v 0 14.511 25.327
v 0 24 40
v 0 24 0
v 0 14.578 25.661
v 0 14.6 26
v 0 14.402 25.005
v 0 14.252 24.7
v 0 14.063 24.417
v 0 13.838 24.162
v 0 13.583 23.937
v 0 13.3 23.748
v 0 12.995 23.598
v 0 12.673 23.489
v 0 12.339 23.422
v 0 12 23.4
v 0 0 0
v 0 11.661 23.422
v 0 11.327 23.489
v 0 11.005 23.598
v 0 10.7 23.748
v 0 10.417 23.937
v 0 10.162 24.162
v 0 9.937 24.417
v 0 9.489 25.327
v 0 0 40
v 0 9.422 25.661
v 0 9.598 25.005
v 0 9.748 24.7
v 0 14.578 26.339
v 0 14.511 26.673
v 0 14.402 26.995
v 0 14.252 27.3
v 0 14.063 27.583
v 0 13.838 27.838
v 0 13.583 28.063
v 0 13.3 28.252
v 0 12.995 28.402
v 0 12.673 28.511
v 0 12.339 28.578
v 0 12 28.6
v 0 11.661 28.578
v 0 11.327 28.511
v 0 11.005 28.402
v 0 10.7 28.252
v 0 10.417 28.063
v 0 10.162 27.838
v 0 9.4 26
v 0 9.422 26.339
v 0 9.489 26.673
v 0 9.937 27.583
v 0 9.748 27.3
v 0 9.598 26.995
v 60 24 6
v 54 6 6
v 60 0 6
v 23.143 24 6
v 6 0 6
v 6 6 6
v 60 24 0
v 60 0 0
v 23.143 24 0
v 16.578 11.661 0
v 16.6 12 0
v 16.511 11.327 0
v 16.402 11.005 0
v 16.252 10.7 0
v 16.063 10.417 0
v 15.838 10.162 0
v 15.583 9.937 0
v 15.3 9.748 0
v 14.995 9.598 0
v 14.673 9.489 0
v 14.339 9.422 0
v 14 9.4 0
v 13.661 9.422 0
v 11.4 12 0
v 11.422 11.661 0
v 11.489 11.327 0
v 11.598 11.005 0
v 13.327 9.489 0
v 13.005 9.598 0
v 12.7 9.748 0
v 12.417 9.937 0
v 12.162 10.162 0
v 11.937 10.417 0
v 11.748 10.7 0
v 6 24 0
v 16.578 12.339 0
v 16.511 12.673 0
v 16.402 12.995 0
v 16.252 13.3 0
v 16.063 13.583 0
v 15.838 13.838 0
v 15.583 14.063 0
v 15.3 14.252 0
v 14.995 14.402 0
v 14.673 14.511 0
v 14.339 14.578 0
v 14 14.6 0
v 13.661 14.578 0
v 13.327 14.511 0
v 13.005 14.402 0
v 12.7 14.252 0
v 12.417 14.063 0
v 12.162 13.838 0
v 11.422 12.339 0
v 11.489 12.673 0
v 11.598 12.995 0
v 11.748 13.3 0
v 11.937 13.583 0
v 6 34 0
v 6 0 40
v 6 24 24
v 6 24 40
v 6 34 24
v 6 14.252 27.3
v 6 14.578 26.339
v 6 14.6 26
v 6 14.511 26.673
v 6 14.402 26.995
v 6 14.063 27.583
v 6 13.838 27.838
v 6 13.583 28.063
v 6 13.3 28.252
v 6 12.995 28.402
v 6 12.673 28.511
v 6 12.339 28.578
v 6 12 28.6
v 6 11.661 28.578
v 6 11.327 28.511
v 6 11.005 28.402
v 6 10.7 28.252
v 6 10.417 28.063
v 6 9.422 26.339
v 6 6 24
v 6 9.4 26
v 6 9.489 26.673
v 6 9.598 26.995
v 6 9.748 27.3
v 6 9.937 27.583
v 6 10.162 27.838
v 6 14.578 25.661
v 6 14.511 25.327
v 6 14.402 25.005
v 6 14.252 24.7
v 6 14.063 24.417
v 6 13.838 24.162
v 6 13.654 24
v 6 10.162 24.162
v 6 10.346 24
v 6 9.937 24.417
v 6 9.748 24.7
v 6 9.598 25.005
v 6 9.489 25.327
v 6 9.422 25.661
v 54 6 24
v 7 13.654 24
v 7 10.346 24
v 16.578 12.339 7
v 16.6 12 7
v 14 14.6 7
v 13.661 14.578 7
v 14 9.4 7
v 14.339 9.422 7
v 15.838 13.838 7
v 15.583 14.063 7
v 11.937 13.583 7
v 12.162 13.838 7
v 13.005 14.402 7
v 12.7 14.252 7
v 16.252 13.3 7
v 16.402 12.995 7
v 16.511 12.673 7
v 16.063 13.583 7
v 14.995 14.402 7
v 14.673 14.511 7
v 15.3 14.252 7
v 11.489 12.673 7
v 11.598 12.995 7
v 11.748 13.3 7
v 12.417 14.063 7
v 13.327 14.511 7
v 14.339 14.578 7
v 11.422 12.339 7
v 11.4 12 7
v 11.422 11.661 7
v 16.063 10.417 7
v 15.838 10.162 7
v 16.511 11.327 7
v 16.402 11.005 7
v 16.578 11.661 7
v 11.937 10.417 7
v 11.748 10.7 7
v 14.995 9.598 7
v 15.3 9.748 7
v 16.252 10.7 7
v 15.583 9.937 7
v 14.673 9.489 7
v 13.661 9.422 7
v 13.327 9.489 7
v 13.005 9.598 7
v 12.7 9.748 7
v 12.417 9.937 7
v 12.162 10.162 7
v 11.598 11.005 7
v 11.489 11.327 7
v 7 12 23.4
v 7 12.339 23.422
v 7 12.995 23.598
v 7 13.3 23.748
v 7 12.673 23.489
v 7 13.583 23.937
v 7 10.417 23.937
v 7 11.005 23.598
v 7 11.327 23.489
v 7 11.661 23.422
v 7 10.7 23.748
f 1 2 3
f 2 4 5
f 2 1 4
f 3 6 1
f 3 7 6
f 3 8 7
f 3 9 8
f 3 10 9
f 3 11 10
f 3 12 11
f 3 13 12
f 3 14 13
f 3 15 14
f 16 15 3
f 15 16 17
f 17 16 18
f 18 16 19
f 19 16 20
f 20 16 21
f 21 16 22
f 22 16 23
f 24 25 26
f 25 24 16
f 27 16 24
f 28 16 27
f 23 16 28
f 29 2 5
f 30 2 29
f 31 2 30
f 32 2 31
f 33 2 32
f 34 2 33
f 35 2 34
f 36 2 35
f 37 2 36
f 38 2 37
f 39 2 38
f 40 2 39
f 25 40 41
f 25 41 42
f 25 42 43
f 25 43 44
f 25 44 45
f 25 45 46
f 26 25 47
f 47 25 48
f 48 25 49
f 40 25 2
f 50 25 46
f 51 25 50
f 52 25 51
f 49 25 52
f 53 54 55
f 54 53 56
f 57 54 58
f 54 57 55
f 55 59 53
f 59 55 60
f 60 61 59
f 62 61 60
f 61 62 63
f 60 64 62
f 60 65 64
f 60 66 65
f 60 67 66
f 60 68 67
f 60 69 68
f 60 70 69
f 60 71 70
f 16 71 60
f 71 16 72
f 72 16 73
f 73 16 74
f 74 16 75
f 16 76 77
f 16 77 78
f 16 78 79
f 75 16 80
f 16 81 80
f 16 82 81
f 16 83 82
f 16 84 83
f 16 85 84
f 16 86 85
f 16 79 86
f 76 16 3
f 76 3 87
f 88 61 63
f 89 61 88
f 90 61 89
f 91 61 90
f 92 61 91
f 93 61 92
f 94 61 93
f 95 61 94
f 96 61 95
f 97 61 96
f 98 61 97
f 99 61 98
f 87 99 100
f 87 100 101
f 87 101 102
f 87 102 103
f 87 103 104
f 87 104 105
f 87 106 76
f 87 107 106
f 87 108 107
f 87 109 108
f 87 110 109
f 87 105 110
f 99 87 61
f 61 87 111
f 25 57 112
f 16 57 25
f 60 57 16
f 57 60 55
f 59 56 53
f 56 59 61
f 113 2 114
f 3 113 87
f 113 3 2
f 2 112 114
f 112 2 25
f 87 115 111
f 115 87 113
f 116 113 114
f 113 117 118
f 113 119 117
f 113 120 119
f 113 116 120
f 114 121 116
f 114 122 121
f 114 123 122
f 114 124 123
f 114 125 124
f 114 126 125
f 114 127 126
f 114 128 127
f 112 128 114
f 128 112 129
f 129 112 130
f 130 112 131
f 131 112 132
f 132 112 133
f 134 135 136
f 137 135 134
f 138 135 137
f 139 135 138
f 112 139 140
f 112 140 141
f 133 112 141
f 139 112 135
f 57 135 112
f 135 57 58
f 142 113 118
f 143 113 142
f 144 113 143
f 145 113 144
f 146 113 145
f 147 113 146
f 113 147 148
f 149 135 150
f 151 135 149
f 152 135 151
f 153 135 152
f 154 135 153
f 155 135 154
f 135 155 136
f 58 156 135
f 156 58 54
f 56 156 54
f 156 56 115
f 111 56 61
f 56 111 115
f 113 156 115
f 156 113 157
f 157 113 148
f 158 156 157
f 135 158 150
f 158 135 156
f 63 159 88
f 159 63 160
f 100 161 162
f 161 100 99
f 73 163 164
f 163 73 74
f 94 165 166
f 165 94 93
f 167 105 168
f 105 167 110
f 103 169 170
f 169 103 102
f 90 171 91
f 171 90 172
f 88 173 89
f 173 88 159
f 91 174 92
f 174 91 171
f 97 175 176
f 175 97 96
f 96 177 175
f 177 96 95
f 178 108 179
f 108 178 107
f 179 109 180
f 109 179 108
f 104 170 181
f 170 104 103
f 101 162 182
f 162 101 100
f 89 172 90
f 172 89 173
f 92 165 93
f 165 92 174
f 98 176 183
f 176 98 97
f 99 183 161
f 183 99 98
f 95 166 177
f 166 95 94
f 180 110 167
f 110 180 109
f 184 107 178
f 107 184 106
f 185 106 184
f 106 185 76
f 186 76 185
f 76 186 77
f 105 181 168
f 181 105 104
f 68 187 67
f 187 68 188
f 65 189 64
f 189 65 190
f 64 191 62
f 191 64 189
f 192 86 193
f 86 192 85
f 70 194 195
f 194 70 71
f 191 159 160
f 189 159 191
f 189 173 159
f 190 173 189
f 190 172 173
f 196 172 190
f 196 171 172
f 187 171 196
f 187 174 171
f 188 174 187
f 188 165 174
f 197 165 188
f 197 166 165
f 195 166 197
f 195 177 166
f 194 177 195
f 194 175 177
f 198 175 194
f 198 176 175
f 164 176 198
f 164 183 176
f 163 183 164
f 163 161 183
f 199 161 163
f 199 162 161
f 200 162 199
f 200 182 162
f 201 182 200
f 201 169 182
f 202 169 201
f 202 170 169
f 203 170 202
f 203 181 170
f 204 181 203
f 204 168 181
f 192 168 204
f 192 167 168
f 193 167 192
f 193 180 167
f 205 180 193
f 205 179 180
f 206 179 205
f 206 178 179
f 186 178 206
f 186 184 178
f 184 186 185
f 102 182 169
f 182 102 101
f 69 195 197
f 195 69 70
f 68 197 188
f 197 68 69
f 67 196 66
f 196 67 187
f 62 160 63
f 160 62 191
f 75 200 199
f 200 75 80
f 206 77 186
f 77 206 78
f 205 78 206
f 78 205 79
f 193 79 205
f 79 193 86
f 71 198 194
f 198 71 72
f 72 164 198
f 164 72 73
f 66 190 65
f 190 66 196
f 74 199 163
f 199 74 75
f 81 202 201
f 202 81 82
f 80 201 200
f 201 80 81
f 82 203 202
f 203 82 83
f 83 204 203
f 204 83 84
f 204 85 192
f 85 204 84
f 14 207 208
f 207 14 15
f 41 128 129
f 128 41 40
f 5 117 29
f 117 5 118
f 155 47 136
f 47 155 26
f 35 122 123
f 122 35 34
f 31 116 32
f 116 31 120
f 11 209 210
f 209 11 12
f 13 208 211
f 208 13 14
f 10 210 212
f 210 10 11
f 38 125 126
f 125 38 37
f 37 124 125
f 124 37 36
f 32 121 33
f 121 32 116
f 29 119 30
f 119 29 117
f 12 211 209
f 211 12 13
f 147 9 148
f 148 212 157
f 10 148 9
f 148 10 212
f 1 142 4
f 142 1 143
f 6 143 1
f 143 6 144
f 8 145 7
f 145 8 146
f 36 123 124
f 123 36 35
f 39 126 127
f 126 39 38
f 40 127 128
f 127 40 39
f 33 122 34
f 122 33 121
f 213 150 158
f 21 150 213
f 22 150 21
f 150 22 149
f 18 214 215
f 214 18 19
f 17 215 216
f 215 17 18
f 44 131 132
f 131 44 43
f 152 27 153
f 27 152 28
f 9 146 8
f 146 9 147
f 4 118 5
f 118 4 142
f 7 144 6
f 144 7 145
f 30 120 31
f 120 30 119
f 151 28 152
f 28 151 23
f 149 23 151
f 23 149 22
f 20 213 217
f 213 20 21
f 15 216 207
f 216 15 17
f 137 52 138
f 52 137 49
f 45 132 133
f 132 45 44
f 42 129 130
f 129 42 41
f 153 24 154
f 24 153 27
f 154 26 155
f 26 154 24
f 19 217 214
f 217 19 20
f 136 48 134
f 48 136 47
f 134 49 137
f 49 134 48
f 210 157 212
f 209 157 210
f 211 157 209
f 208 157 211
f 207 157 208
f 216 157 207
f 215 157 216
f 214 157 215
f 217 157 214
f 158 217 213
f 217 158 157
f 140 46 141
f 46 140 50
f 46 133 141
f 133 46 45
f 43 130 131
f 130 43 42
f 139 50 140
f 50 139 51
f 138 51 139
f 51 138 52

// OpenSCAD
$fn = 48;

leg_length = 60;
leg_height = 40;
leg_width = 24;
wall_thickness = 6;
hole_diameter = 5.2;
hole_offset = 14;
gusset_thickness = 6;

module bracket_body() {
    union() {
        cube([leg_length, leg_width, wall_thickness]);
        cube([wall_thickness, leg_width, leg_height]);
        linear_extrude(height = leg_width)
            polygon(points = [
                [wall_thickness, wall_thickness],
                [wall_thickness, leg_height - wall_thickness],
                [leg_length - wall_thickness, wall_thickness]
            ]);
    }
}

module mounting_holes() {
    translate([hole_offset, leg_width / 2, -1])
        cylinder(h = wall_thickness + 2, d = hole_diameter);

    translate([-1, leg_width / 2, leg_height - hole_offset])
        rotate([0, 90, 0])
            cylinder(h = wall_thickness + 2, d = hole_diameter);
}

difference() {
    bracket_body();
    mounting_holes();
}
